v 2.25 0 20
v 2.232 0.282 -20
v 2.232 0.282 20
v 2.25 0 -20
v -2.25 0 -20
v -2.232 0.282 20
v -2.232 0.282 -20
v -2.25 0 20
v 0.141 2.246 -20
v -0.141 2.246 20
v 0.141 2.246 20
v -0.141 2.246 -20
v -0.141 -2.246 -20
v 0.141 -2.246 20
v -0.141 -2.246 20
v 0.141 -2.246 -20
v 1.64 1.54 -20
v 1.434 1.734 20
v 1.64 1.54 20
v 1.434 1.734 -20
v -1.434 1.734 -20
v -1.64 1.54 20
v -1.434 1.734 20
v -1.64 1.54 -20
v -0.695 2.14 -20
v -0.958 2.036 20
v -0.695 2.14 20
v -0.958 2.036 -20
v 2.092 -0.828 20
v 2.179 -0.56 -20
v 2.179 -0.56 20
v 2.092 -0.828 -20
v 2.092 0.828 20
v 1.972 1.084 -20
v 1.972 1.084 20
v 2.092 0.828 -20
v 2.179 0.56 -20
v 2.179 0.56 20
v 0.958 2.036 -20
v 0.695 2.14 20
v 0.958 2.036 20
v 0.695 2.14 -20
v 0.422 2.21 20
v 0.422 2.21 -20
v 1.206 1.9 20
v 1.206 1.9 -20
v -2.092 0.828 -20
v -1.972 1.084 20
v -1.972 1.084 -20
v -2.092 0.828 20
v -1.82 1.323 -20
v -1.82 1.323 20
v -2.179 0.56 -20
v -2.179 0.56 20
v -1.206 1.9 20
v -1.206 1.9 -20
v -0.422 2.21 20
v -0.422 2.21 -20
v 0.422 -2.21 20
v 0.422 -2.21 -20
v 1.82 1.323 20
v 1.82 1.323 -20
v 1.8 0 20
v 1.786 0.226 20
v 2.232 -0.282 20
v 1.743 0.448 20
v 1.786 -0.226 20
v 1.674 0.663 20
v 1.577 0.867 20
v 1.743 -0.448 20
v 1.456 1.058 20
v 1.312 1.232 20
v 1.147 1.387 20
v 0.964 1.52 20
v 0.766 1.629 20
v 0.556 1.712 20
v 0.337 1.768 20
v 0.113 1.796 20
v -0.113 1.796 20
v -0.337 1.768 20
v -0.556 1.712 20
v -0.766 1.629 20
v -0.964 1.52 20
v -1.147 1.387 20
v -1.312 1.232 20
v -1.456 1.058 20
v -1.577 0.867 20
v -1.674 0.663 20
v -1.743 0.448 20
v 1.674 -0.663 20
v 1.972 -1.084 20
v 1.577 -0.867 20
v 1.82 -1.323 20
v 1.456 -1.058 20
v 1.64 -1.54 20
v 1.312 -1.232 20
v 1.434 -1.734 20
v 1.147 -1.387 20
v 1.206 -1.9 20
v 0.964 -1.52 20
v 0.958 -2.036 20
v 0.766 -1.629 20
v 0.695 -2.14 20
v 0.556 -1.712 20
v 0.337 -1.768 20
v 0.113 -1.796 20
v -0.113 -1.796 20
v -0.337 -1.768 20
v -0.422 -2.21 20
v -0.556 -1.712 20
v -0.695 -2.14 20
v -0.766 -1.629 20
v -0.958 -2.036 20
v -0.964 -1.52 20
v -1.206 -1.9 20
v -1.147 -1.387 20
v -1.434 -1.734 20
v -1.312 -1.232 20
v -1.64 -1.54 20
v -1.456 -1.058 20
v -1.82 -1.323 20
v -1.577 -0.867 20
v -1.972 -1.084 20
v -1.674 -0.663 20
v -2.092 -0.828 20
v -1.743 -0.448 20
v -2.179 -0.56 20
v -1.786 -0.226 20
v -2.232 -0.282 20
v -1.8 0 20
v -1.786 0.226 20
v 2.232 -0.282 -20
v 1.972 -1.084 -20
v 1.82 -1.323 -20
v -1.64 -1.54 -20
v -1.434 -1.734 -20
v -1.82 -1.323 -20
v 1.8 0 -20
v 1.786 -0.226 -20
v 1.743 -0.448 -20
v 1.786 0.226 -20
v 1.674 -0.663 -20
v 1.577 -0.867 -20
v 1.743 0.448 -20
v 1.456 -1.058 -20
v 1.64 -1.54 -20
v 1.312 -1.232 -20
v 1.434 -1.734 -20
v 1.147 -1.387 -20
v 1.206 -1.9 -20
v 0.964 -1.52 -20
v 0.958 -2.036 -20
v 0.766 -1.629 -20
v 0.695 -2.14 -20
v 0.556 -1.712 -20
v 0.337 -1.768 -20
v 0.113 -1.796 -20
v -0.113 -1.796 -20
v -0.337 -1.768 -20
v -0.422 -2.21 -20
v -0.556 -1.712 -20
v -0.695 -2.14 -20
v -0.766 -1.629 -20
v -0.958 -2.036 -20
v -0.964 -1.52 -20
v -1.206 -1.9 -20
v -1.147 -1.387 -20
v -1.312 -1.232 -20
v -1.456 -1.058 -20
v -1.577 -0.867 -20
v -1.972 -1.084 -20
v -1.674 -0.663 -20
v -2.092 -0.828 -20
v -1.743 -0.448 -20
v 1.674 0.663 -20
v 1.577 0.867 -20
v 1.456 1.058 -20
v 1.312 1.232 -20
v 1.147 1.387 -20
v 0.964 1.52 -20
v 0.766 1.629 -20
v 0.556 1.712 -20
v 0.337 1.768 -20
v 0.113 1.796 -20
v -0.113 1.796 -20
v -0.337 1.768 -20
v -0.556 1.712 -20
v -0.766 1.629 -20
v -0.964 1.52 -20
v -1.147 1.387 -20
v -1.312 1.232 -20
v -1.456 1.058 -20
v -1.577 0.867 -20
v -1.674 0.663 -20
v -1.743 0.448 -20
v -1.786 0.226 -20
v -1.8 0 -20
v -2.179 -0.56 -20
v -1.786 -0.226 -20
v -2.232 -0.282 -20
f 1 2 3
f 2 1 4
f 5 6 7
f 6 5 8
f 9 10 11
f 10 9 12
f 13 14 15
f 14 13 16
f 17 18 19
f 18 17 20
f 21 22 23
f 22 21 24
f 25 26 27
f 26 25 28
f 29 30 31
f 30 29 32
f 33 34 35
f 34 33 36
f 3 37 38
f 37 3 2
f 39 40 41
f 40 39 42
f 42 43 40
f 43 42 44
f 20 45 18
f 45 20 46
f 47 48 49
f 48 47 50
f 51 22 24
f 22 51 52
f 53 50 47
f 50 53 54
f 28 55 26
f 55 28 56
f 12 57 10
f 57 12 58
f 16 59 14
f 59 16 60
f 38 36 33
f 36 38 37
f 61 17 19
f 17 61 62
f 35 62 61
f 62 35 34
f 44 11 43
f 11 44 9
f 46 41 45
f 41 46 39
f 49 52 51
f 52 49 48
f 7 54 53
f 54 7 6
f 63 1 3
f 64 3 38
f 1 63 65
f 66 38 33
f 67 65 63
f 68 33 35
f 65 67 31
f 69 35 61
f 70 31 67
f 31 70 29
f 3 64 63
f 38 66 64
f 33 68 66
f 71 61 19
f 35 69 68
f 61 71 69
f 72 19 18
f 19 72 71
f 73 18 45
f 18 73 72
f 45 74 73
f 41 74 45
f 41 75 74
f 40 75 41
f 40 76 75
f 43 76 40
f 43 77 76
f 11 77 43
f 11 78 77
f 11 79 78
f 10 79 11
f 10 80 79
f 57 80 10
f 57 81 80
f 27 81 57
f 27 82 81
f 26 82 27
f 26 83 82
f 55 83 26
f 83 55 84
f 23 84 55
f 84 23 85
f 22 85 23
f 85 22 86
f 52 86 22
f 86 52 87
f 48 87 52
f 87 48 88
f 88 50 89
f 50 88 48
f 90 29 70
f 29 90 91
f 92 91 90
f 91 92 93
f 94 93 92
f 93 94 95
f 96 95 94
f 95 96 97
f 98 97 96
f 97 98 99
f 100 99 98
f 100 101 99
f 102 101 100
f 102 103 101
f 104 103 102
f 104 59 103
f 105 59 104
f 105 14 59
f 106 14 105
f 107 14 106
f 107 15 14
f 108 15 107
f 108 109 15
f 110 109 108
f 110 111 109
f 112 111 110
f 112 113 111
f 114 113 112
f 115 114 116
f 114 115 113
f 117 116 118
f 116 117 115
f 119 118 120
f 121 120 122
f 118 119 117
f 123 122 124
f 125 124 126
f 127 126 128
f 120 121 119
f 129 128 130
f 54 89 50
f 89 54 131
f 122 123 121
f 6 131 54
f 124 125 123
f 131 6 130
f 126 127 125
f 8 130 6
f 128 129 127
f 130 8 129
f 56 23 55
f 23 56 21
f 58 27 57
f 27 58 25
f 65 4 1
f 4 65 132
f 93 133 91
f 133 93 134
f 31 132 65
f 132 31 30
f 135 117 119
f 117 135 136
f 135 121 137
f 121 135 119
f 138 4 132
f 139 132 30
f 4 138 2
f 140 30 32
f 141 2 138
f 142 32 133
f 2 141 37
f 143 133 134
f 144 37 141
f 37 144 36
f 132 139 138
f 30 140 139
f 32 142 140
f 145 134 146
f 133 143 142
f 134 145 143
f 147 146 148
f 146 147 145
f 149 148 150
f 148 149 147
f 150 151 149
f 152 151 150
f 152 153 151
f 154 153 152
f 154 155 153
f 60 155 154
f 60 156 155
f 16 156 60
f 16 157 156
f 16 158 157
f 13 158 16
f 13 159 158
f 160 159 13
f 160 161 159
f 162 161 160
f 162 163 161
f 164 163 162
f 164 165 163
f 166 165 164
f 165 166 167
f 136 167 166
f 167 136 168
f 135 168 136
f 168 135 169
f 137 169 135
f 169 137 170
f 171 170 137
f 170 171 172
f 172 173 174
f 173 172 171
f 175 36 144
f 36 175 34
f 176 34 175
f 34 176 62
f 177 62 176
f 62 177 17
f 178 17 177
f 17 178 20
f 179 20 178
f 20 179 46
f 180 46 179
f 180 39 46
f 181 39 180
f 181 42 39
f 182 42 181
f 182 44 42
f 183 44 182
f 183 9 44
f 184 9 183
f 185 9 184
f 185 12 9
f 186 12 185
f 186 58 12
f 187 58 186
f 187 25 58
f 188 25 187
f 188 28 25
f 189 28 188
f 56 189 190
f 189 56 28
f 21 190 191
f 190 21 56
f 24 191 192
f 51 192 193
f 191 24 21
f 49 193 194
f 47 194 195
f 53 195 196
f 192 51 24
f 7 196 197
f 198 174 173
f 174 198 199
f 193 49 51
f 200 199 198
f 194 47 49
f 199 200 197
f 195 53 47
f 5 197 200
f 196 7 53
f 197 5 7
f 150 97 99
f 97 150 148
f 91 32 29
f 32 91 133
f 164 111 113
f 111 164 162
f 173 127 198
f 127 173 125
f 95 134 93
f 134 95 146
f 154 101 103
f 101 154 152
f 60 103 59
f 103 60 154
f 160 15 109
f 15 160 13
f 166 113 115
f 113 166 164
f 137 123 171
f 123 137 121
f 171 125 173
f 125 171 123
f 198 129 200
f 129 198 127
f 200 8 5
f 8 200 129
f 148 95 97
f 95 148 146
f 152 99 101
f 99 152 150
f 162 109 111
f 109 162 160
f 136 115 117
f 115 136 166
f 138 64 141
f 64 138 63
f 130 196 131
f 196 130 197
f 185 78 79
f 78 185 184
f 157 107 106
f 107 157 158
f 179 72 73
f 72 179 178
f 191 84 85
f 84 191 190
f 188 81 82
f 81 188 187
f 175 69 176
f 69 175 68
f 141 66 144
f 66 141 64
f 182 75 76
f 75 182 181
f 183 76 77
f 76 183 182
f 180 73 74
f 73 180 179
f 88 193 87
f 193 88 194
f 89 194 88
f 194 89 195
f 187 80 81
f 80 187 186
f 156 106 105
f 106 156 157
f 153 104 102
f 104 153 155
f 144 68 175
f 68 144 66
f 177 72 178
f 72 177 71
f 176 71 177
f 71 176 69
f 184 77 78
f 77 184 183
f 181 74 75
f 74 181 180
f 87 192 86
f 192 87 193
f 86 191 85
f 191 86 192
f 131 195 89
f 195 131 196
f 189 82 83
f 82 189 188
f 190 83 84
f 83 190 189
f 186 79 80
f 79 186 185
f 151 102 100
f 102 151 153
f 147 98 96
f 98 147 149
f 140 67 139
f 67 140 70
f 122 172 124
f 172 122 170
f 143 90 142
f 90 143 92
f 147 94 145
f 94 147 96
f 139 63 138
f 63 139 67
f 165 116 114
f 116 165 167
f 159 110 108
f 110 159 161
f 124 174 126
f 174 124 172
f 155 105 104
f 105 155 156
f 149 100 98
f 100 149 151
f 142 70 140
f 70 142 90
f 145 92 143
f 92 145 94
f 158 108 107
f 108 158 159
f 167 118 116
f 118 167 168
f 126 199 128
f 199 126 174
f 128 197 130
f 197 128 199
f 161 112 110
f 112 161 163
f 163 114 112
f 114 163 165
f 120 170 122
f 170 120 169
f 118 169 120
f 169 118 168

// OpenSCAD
$fn = 50;


difference() {
	union() {
		translate(v = [0, 0, -20.0000000000]) {
			cylinder(h = 40, r = 2.2500000000);
		}
	}
	union() {
		translate(v = [0, 0, -100.0000000000]) {
			cylinder(h = 200, r = 1.8000000000);
		}
	}
}
